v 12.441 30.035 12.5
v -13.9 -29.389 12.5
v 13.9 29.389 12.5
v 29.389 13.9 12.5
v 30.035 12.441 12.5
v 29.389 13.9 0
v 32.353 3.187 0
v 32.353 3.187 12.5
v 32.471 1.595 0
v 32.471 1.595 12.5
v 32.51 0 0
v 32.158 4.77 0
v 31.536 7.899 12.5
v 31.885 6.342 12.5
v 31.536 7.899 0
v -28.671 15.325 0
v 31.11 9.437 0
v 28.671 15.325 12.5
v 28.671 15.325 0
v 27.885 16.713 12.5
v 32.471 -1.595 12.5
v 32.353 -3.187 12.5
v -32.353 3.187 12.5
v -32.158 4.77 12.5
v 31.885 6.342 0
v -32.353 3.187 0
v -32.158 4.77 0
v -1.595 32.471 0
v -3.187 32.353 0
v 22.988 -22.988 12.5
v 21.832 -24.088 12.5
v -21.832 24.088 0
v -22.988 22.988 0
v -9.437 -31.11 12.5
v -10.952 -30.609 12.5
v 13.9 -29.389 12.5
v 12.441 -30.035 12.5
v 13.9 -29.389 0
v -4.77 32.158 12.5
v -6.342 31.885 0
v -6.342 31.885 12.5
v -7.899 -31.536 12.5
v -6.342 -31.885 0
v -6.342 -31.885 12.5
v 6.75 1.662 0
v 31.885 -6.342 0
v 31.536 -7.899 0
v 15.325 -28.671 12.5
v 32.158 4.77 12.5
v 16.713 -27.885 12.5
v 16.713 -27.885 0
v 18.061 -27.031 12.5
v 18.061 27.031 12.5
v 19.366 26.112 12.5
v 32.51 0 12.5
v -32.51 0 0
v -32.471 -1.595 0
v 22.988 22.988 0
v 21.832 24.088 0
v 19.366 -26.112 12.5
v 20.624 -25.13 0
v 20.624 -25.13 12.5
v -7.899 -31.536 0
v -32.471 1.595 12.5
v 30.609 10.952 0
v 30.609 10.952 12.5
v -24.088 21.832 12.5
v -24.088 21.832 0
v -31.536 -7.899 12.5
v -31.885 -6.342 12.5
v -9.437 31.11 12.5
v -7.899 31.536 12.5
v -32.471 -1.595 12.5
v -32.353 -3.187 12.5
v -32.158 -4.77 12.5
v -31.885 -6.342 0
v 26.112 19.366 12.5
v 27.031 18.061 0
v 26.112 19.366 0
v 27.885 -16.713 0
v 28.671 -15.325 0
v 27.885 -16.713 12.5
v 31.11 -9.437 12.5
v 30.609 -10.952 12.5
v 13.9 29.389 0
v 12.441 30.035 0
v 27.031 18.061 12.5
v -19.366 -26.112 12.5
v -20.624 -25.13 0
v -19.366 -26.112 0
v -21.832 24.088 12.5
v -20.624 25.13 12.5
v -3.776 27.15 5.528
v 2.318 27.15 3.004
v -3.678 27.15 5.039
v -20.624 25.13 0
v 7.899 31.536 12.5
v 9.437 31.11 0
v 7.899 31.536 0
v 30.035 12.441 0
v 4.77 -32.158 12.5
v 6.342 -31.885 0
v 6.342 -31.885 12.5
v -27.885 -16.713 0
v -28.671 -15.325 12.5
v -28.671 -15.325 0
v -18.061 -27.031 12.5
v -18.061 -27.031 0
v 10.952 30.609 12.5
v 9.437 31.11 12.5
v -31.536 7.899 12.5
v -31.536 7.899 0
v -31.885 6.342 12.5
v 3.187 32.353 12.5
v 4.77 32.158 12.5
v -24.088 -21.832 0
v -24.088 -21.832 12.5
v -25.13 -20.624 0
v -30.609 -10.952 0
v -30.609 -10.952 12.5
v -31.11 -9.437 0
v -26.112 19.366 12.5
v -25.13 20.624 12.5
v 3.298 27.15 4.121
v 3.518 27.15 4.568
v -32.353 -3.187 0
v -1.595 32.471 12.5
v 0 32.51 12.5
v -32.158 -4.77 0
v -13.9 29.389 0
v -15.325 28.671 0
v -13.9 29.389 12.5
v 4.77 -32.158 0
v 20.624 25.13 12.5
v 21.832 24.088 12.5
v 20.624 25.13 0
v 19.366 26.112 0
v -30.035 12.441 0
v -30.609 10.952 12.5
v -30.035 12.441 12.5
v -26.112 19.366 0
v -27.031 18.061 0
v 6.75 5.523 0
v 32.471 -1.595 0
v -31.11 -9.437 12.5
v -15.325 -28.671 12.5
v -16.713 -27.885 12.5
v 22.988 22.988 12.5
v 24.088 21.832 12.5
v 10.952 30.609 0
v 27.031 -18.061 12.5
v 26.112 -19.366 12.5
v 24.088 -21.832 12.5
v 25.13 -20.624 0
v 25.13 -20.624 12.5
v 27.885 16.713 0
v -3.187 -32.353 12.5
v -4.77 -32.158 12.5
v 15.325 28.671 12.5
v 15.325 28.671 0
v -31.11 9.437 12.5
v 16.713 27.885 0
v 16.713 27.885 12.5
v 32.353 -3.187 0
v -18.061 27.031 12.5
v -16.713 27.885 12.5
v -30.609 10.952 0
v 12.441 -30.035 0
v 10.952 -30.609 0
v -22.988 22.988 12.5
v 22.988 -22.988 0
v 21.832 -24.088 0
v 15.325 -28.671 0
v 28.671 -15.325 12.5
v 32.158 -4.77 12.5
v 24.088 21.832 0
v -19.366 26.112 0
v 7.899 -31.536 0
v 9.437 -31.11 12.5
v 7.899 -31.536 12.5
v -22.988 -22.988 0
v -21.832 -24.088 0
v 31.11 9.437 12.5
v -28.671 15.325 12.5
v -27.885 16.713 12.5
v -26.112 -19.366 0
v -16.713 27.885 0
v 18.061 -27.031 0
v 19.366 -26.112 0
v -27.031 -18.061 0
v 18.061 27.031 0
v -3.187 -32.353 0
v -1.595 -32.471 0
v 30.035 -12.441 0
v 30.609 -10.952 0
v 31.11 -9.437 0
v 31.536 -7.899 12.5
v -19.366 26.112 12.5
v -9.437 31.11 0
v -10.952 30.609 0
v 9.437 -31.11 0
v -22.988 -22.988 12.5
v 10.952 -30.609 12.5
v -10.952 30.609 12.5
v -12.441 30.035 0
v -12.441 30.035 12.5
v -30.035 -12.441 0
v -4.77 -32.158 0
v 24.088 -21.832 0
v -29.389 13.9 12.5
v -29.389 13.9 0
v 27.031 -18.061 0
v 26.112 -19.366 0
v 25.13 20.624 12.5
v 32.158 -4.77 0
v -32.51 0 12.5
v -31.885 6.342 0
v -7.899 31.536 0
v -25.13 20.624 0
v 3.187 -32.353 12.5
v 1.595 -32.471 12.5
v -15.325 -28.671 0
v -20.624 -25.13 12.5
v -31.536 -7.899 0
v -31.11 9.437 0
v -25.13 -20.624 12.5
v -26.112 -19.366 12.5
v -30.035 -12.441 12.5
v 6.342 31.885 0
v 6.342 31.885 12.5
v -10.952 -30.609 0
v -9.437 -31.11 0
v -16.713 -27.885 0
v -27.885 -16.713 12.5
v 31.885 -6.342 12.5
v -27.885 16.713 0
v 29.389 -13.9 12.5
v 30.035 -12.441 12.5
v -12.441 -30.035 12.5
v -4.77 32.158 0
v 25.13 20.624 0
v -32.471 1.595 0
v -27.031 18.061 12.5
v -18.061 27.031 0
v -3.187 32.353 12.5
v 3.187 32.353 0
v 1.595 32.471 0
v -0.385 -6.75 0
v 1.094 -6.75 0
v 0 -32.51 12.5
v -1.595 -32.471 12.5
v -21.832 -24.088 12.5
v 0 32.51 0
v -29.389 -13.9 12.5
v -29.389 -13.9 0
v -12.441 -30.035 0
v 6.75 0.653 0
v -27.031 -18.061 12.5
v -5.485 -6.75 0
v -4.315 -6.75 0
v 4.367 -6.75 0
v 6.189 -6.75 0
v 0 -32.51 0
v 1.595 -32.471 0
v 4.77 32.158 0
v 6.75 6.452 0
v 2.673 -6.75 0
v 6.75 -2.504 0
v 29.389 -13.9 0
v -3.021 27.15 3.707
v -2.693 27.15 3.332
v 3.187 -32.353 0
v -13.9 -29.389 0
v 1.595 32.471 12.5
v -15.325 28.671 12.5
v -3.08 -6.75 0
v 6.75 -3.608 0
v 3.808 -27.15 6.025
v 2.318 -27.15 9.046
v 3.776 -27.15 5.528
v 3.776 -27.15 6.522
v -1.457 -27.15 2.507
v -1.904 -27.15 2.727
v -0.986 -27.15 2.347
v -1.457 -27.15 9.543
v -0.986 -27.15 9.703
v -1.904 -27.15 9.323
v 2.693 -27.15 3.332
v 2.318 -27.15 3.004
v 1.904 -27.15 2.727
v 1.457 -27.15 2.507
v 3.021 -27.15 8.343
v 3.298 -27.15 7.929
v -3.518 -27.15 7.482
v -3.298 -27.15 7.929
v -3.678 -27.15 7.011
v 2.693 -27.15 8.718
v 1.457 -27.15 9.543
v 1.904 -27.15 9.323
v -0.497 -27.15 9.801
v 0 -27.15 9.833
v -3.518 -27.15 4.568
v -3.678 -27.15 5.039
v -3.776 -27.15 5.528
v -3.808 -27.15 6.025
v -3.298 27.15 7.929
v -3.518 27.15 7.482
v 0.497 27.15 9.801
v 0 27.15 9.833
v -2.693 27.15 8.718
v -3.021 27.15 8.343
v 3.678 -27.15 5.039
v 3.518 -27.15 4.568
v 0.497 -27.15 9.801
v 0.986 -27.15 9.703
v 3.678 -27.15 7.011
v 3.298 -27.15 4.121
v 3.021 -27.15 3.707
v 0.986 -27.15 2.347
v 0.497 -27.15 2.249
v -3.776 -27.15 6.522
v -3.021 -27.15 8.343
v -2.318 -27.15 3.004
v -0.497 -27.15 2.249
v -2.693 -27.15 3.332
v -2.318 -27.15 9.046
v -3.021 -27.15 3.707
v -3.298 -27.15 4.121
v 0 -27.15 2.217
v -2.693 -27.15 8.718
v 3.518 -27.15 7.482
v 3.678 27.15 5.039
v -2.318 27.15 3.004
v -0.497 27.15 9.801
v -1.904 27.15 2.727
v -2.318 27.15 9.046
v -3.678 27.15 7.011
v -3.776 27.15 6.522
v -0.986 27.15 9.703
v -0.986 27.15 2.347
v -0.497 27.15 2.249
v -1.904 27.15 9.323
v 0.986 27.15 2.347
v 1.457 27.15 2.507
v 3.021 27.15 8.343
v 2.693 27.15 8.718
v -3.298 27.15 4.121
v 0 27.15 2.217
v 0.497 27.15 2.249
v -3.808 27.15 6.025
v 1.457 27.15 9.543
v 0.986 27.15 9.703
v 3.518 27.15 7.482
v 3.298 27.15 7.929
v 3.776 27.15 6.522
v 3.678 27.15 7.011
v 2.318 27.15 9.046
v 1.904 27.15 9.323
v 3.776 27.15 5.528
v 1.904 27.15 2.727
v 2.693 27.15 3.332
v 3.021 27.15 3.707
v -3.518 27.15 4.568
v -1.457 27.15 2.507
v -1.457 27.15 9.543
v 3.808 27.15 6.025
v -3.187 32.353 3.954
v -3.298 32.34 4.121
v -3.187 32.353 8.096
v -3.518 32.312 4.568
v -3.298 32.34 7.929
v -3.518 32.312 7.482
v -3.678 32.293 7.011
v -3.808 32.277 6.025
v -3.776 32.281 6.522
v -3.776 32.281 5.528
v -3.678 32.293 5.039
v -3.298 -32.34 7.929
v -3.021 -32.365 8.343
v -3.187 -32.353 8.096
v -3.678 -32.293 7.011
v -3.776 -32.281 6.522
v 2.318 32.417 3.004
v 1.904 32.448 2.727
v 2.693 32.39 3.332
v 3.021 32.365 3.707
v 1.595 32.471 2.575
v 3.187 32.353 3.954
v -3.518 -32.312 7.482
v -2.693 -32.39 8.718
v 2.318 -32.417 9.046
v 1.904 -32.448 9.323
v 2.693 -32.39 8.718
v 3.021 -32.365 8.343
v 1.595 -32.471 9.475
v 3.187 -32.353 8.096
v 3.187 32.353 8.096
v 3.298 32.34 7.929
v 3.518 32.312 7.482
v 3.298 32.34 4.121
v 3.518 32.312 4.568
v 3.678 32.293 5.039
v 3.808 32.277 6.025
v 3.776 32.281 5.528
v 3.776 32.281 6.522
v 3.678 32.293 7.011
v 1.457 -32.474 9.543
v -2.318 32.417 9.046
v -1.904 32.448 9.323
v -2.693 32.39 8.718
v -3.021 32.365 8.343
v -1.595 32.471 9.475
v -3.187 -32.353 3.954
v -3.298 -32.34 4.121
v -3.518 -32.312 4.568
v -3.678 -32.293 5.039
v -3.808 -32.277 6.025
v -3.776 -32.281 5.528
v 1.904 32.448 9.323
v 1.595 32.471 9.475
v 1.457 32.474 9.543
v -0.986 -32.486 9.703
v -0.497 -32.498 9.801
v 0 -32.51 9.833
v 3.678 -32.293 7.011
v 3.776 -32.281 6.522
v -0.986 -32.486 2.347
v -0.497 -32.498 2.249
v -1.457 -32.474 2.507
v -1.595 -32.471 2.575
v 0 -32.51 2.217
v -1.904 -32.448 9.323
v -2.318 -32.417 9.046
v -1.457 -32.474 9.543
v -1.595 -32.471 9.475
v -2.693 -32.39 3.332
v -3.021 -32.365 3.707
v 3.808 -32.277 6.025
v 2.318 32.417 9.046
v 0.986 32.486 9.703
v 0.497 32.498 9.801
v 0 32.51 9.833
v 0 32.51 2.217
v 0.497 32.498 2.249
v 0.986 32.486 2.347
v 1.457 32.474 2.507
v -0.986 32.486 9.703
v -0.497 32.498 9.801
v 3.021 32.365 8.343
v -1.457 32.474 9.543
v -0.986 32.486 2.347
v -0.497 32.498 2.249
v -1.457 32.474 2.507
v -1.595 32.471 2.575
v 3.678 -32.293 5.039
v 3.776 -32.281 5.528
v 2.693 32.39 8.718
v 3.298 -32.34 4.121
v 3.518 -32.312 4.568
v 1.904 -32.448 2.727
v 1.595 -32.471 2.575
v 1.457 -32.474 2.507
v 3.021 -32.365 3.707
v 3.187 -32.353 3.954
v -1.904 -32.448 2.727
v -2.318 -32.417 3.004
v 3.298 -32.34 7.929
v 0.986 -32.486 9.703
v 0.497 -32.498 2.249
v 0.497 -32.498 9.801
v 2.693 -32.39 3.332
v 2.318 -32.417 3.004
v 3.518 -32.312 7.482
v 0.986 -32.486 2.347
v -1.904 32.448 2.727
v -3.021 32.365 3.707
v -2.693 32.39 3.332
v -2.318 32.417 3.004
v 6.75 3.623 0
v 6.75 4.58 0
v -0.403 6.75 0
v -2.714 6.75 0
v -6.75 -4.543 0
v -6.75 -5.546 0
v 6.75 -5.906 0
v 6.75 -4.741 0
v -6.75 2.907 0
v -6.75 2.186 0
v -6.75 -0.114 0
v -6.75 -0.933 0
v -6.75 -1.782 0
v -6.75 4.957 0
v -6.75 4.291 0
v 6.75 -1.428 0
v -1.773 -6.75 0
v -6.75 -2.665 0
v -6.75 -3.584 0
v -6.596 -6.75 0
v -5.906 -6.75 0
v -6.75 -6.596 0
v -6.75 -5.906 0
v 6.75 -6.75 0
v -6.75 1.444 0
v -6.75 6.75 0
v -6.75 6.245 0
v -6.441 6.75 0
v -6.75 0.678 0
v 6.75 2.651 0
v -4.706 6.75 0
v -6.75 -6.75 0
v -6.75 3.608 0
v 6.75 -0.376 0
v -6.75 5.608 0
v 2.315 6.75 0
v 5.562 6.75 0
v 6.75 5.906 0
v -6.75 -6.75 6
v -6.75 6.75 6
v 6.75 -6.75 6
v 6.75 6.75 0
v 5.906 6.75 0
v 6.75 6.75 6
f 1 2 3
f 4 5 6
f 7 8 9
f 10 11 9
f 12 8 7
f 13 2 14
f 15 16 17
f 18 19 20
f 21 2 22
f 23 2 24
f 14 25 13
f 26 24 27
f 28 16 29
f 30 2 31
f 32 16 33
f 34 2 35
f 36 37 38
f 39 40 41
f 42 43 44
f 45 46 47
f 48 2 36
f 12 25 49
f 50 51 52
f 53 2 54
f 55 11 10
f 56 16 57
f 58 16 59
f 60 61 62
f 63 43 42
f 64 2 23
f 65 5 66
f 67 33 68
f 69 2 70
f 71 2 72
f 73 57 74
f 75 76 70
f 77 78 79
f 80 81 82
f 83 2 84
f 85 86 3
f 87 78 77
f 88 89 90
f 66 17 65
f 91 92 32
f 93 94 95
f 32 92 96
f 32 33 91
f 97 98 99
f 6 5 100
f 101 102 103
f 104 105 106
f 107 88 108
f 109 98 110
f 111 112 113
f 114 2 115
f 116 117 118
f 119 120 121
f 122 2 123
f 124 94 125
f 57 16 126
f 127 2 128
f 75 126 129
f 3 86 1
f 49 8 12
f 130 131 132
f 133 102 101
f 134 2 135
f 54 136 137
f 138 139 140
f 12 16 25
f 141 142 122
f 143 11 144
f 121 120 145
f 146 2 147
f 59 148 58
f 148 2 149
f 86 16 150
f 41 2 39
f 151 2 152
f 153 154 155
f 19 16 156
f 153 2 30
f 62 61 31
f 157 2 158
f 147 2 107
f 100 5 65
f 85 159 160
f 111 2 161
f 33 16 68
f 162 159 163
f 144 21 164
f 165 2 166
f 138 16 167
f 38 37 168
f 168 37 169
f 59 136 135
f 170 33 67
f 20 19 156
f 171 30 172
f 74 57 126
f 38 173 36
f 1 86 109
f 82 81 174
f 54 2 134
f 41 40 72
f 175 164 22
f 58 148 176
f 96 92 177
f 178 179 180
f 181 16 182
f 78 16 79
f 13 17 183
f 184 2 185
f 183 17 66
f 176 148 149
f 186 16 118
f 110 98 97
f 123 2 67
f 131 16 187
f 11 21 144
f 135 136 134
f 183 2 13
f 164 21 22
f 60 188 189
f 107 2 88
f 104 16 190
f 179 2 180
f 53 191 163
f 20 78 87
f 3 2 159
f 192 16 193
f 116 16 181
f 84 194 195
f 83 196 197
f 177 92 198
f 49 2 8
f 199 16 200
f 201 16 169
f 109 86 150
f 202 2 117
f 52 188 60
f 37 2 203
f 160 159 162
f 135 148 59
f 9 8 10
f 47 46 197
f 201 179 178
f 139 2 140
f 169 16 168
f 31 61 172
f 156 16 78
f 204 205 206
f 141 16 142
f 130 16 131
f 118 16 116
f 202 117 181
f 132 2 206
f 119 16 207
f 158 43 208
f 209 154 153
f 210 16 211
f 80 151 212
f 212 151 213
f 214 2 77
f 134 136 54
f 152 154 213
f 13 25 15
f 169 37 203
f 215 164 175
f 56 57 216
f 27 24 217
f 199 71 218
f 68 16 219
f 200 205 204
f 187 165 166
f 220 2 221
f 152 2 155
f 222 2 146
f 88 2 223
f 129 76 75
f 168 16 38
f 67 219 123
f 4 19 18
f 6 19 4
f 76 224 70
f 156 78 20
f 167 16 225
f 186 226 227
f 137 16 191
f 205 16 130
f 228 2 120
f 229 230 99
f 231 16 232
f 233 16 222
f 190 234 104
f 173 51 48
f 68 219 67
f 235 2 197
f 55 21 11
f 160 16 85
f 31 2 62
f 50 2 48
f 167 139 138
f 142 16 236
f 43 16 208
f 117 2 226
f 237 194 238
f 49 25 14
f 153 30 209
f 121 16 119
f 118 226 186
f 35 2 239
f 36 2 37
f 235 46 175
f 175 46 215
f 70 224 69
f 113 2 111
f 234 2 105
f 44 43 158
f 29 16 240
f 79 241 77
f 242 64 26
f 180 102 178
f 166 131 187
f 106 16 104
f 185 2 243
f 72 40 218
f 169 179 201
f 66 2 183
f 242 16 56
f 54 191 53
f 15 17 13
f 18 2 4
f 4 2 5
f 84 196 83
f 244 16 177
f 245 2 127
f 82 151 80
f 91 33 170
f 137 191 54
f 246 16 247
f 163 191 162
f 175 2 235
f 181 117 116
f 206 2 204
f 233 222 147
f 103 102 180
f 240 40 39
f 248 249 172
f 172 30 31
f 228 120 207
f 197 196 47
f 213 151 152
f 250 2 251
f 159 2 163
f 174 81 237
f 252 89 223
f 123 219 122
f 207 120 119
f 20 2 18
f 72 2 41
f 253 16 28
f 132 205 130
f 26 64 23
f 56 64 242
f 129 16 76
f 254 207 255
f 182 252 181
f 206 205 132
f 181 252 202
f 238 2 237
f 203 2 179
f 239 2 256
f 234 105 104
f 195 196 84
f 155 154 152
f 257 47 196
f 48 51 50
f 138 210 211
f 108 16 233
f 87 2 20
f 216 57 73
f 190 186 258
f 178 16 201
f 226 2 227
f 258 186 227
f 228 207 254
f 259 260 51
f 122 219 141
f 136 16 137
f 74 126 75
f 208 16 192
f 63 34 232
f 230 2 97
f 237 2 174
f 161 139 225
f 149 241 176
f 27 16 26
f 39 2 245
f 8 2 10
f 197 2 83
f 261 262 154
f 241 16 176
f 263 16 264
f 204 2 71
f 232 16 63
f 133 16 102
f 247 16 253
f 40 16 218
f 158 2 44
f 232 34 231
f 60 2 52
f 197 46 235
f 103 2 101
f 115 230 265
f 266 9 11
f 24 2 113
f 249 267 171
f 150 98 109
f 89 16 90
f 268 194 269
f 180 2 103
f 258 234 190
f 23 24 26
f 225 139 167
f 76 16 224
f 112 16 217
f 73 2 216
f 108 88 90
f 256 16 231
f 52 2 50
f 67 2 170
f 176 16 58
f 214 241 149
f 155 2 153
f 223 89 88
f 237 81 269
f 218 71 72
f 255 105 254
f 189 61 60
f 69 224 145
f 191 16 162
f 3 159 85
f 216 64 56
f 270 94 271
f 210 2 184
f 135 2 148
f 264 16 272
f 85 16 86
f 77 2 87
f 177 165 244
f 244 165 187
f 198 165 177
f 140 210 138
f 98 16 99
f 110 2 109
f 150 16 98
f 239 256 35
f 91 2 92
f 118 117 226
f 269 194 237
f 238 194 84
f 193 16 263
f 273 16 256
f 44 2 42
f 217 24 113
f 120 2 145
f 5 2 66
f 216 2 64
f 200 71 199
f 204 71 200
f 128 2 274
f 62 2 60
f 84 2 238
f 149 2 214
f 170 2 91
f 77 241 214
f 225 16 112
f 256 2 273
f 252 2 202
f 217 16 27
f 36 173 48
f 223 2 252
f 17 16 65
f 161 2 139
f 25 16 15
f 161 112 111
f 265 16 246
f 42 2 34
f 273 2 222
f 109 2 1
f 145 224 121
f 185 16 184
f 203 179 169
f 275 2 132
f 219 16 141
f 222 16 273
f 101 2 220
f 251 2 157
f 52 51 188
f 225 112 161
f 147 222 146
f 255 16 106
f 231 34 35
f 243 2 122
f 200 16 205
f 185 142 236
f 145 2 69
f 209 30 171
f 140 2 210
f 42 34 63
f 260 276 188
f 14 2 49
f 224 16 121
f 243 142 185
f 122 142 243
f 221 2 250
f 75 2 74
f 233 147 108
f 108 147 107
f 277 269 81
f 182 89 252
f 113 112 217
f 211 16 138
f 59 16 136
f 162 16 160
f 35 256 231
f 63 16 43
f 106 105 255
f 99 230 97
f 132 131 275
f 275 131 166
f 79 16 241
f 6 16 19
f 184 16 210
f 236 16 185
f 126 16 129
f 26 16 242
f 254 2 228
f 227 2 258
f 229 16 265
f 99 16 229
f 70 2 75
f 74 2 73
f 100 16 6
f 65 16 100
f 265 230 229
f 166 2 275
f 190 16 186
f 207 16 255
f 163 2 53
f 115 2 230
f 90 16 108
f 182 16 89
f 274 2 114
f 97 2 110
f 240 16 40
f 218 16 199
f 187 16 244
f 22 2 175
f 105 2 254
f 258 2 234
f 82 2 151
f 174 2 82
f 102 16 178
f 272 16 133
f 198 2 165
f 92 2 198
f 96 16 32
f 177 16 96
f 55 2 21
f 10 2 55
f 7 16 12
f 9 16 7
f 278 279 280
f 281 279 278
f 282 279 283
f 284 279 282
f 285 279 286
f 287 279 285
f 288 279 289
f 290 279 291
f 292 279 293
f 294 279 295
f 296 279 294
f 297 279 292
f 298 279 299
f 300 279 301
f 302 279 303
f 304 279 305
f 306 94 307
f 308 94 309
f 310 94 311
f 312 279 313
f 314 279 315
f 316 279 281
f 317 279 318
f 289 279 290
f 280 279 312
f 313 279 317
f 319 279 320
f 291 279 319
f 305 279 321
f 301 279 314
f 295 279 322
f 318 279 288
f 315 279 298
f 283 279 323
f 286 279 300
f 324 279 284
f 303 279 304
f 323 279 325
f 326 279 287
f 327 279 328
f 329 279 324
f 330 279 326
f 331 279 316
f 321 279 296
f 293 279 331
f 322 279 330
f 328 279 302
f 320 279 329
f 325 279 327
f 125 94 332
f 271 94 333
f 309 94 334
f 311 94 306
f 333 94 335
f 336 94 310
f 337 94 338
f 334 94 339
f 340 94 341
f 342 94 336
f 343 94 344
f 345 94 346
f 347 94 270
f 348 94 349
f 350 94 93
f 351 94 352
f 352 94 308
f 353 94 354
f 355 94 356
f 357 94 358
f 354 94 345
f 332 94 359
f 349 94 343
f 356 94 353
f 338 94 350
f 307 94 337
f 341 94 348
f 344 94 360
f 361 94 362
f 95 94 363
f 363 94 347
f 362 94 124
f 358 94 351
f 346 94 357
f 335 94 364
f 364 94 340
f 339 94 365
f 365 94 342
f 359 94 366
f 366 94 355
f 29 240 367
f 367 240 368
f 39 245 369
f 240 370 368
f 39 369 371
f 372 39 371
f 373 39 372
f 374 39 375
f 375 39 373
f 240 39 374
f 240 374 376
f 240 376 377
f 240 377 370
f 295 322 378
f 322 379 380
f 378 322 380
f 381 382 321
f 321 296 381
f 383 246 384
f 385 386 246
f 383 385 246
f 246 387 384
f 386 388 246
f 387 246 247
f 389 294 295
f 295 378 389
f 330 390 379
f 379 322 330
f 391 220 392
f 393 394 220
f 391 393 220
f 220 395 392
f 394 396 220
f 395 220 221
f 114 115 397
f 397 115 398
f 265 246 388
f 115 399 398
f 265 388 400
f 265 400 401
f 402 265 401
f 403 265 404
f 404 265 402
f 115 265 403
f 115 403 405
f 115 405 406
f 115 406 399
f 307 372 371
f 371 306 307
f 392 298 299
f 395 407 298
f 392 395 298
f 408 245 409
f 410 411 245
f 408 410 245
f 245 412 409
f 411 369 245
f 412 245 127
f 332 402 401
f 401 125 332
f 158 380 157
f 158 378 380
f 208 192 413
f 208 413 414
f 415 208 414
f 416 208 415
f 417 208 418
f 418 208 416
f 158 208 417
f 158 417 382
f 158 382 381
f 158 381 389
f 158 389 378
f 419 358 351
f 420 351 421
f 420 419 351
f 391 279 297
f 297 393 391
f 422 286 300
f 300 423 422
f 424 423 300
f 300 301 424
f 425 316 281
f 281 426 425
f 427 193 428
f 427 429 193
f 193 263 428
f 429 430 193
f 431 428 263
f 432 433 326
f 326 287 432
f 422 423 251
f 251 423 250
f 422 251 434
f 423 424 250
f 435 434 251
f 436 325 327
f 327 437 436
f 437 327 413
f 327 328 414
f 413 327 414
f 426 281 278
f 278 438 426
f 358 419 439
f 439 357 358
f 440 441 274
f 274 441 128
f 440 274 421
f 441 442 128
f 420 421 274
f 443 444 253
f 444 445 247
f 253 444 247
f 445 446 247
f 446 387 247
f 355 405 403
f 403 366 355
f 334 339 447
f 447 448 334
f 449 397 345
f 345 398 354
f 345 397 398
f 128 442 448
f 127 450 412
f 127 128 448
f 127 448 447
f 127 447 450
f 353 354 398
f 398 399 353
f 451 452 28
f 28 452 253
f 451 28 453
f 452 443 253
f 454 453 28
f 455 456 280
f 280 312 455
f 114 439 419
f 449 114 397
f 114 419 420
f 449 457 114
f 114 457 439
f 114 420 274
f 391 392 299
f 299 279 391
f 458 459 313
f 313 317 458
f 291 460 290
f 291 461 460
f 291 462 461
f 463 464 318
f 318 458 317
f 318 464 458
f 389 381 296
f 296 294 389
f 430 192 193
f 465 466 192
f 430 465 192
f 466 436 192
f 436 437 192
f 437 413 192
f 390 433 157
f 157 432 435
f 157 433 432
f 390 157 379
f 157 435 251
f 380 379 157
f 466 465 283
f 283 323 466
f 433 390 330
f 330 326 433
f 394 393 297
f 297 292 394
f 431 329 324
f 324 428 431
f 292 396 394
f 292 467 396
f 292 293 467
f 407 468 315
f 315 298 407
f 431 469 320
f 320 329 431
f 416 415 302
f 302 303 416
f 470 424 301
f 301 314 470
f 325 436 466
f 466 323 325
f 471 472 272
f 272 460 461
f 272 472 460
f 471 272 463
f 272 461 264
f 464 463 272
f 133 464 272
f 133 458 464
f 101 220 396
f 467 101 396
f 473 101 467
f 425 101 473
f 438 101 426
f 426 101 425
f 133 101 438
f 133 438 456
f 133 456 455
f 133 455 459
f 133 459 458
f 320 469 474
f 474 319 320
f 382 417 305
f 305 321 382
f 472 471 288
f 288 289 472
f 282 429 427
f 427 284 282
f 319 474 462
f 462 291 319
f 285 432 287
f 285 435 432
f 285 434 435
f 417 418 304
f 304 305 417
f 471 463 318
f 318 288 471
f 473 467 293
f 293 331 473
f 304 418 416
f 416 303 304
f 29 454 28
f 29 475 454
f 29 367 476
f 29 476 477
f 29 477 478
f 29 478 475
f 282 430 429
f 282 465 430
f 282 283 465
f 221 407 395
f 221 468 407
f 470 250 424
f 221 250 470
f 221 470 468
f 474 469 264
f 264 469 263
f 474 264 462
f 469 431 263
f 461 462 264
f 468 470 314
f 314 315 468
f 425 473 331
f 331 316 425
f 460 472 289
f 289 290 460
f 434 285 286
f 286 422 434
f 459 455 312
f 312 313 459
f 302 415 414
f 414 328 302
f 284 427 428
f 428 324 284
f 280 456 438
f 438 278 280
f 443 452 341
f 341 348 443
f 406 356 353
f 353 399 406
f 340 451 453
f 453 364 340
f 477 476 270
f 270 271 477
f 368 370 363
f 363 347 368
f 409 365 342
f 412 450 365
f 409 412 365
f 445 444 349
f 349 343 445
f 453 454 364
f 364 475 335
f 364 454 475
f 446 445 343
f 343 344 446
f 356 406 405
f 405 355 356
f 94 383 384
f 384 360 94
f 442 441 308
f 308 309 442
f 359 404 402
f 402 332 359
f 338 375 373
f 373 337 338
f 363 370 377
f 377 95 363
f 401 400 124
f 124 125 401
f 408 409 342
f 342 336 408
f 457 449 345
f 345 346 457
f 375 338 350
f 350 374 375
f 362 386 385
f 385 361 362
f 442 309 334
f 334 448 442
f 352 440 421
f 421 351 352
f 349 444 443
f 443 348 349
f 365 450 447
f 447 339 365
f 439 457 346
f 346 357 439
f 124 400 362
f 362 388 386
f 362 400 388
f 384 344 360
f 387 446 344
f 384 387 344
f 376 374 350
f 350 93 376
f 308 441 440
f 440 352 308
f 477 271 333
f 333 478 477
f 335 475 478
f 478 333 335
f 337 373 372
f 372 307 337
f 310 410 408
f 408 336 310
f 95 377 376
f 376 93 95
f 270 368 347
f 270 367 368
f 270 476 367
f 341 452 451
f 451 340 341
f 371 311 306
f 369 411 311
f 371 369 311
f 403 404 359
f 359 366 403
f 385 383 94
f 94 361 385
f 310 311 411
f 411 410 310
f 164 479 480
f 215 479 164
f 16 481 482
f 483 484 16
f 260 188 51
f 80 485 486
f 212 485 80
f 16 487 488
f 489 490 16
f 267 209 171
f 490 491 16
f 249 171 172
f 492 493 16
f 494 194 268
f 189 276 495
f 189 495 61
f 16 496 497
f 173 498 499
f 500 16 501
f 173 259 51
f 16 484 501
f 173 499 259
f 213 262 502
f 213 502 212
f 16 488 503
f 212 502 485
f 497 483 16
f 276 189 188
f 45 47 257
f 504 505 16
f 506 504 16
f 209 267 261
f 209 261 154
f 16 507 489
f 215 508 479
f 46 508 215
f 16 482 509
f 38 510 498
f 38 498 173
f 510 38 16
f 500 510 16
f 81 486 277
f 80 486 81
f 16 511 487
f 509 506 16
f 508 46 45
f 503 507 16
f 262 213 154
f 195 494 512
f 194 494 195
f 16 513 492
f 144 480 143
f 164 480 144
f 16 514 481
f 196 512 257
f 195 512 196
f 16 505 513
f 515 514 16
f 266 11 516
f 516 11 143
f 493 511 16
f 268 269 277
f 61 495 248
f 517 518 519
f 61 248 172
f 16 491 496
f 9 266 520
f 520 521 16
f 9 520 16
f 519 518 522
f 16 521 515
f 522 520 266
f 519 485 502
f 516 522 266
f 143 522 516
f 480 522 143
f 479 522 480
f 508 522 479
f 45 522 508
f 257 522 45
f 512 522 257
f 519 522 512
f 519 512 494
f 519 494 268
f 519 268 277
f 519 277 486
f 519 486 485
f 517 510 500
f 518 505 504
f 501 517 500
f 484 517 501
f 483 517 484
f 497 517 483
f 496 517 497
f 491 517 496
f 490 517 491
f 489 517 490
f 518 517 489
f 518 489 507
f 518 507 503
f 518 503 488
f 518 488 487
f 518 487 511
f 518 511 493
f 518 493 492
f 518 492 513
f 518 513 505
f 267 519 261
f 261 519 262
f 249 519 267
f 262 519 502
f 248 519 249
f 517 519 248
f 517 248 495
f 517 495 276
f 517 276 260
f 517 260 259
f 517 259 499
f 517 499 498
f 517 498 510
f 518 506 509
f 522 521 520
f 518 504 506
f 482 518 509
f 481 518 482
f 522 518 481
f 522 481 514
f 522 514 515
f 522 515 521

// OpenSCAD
// file: cylinder_outer.scad
 module cylinder_outer(h, d=1, r, center=false, fn=48){
   rad = !is_undef(r) ? r : d/2;
   fudge = 1/cos(180/fn);
   cylinder(h=h,r=rad*fudge,center=center,$fn=fn);
}
// main file
use <cylinder_outer.scad>

// Globals (in mm)
function GenericMountDisc_Diameter() = 65;
function GenericMountDisc_Thickness() = 12.5;
function GenericMountDisc_NotchZ() = 6.025;
function GenericMountDisc_NotchDiameter() = 6.8;
function GenericMountDisc_NotchDepth() = 5.75;

module GenericMountDisc(pos = [0,0,0]) {
// Parameters (in mm)
eps=0.4;
baseDiam = GenericMountDisc_Diameter();
baseRadius = baseDiam / 2;
baseThickness = GenericMountDisc_Thickness();
holeCenter = GenericMountDisc_NotchZ();
holeDiam = GenericMountDisc_NotchDiameter() + 2 * eps;
holeRadius = holeDiam / 2;
holeDepth = GenericMountDisc_NotchDepth();
boxHeight = 6;
boxWidth = 13.5;

// Offset to position
translate(pos) {

    // Base
    difference() {
    cylinder_outer(h=baseThickness, r=baseRadius, fn=128);

    // Bolt holes
    translate([0, 0, holeCenter]) {
        offset = baseRadius - holeDepth/2 + eps;
        translate([0, offset, 0]) rotate([90,0,0]) cylinder_outer(h=holeDepth, r=holeRadius, center=true);
        translate([0, -offset, 0]) rotate([-90,0,0]) cylinder_outer(h=holeDepth, r=holeRadius, center=true);
    }

    // Box
    offset = boxWidth / 2;
    translate([-offset, -offset, -eps]) cube([boxWidth, boxWidth, boxHeight + eps]);
    }
    }
}

GenericMountDisc();
